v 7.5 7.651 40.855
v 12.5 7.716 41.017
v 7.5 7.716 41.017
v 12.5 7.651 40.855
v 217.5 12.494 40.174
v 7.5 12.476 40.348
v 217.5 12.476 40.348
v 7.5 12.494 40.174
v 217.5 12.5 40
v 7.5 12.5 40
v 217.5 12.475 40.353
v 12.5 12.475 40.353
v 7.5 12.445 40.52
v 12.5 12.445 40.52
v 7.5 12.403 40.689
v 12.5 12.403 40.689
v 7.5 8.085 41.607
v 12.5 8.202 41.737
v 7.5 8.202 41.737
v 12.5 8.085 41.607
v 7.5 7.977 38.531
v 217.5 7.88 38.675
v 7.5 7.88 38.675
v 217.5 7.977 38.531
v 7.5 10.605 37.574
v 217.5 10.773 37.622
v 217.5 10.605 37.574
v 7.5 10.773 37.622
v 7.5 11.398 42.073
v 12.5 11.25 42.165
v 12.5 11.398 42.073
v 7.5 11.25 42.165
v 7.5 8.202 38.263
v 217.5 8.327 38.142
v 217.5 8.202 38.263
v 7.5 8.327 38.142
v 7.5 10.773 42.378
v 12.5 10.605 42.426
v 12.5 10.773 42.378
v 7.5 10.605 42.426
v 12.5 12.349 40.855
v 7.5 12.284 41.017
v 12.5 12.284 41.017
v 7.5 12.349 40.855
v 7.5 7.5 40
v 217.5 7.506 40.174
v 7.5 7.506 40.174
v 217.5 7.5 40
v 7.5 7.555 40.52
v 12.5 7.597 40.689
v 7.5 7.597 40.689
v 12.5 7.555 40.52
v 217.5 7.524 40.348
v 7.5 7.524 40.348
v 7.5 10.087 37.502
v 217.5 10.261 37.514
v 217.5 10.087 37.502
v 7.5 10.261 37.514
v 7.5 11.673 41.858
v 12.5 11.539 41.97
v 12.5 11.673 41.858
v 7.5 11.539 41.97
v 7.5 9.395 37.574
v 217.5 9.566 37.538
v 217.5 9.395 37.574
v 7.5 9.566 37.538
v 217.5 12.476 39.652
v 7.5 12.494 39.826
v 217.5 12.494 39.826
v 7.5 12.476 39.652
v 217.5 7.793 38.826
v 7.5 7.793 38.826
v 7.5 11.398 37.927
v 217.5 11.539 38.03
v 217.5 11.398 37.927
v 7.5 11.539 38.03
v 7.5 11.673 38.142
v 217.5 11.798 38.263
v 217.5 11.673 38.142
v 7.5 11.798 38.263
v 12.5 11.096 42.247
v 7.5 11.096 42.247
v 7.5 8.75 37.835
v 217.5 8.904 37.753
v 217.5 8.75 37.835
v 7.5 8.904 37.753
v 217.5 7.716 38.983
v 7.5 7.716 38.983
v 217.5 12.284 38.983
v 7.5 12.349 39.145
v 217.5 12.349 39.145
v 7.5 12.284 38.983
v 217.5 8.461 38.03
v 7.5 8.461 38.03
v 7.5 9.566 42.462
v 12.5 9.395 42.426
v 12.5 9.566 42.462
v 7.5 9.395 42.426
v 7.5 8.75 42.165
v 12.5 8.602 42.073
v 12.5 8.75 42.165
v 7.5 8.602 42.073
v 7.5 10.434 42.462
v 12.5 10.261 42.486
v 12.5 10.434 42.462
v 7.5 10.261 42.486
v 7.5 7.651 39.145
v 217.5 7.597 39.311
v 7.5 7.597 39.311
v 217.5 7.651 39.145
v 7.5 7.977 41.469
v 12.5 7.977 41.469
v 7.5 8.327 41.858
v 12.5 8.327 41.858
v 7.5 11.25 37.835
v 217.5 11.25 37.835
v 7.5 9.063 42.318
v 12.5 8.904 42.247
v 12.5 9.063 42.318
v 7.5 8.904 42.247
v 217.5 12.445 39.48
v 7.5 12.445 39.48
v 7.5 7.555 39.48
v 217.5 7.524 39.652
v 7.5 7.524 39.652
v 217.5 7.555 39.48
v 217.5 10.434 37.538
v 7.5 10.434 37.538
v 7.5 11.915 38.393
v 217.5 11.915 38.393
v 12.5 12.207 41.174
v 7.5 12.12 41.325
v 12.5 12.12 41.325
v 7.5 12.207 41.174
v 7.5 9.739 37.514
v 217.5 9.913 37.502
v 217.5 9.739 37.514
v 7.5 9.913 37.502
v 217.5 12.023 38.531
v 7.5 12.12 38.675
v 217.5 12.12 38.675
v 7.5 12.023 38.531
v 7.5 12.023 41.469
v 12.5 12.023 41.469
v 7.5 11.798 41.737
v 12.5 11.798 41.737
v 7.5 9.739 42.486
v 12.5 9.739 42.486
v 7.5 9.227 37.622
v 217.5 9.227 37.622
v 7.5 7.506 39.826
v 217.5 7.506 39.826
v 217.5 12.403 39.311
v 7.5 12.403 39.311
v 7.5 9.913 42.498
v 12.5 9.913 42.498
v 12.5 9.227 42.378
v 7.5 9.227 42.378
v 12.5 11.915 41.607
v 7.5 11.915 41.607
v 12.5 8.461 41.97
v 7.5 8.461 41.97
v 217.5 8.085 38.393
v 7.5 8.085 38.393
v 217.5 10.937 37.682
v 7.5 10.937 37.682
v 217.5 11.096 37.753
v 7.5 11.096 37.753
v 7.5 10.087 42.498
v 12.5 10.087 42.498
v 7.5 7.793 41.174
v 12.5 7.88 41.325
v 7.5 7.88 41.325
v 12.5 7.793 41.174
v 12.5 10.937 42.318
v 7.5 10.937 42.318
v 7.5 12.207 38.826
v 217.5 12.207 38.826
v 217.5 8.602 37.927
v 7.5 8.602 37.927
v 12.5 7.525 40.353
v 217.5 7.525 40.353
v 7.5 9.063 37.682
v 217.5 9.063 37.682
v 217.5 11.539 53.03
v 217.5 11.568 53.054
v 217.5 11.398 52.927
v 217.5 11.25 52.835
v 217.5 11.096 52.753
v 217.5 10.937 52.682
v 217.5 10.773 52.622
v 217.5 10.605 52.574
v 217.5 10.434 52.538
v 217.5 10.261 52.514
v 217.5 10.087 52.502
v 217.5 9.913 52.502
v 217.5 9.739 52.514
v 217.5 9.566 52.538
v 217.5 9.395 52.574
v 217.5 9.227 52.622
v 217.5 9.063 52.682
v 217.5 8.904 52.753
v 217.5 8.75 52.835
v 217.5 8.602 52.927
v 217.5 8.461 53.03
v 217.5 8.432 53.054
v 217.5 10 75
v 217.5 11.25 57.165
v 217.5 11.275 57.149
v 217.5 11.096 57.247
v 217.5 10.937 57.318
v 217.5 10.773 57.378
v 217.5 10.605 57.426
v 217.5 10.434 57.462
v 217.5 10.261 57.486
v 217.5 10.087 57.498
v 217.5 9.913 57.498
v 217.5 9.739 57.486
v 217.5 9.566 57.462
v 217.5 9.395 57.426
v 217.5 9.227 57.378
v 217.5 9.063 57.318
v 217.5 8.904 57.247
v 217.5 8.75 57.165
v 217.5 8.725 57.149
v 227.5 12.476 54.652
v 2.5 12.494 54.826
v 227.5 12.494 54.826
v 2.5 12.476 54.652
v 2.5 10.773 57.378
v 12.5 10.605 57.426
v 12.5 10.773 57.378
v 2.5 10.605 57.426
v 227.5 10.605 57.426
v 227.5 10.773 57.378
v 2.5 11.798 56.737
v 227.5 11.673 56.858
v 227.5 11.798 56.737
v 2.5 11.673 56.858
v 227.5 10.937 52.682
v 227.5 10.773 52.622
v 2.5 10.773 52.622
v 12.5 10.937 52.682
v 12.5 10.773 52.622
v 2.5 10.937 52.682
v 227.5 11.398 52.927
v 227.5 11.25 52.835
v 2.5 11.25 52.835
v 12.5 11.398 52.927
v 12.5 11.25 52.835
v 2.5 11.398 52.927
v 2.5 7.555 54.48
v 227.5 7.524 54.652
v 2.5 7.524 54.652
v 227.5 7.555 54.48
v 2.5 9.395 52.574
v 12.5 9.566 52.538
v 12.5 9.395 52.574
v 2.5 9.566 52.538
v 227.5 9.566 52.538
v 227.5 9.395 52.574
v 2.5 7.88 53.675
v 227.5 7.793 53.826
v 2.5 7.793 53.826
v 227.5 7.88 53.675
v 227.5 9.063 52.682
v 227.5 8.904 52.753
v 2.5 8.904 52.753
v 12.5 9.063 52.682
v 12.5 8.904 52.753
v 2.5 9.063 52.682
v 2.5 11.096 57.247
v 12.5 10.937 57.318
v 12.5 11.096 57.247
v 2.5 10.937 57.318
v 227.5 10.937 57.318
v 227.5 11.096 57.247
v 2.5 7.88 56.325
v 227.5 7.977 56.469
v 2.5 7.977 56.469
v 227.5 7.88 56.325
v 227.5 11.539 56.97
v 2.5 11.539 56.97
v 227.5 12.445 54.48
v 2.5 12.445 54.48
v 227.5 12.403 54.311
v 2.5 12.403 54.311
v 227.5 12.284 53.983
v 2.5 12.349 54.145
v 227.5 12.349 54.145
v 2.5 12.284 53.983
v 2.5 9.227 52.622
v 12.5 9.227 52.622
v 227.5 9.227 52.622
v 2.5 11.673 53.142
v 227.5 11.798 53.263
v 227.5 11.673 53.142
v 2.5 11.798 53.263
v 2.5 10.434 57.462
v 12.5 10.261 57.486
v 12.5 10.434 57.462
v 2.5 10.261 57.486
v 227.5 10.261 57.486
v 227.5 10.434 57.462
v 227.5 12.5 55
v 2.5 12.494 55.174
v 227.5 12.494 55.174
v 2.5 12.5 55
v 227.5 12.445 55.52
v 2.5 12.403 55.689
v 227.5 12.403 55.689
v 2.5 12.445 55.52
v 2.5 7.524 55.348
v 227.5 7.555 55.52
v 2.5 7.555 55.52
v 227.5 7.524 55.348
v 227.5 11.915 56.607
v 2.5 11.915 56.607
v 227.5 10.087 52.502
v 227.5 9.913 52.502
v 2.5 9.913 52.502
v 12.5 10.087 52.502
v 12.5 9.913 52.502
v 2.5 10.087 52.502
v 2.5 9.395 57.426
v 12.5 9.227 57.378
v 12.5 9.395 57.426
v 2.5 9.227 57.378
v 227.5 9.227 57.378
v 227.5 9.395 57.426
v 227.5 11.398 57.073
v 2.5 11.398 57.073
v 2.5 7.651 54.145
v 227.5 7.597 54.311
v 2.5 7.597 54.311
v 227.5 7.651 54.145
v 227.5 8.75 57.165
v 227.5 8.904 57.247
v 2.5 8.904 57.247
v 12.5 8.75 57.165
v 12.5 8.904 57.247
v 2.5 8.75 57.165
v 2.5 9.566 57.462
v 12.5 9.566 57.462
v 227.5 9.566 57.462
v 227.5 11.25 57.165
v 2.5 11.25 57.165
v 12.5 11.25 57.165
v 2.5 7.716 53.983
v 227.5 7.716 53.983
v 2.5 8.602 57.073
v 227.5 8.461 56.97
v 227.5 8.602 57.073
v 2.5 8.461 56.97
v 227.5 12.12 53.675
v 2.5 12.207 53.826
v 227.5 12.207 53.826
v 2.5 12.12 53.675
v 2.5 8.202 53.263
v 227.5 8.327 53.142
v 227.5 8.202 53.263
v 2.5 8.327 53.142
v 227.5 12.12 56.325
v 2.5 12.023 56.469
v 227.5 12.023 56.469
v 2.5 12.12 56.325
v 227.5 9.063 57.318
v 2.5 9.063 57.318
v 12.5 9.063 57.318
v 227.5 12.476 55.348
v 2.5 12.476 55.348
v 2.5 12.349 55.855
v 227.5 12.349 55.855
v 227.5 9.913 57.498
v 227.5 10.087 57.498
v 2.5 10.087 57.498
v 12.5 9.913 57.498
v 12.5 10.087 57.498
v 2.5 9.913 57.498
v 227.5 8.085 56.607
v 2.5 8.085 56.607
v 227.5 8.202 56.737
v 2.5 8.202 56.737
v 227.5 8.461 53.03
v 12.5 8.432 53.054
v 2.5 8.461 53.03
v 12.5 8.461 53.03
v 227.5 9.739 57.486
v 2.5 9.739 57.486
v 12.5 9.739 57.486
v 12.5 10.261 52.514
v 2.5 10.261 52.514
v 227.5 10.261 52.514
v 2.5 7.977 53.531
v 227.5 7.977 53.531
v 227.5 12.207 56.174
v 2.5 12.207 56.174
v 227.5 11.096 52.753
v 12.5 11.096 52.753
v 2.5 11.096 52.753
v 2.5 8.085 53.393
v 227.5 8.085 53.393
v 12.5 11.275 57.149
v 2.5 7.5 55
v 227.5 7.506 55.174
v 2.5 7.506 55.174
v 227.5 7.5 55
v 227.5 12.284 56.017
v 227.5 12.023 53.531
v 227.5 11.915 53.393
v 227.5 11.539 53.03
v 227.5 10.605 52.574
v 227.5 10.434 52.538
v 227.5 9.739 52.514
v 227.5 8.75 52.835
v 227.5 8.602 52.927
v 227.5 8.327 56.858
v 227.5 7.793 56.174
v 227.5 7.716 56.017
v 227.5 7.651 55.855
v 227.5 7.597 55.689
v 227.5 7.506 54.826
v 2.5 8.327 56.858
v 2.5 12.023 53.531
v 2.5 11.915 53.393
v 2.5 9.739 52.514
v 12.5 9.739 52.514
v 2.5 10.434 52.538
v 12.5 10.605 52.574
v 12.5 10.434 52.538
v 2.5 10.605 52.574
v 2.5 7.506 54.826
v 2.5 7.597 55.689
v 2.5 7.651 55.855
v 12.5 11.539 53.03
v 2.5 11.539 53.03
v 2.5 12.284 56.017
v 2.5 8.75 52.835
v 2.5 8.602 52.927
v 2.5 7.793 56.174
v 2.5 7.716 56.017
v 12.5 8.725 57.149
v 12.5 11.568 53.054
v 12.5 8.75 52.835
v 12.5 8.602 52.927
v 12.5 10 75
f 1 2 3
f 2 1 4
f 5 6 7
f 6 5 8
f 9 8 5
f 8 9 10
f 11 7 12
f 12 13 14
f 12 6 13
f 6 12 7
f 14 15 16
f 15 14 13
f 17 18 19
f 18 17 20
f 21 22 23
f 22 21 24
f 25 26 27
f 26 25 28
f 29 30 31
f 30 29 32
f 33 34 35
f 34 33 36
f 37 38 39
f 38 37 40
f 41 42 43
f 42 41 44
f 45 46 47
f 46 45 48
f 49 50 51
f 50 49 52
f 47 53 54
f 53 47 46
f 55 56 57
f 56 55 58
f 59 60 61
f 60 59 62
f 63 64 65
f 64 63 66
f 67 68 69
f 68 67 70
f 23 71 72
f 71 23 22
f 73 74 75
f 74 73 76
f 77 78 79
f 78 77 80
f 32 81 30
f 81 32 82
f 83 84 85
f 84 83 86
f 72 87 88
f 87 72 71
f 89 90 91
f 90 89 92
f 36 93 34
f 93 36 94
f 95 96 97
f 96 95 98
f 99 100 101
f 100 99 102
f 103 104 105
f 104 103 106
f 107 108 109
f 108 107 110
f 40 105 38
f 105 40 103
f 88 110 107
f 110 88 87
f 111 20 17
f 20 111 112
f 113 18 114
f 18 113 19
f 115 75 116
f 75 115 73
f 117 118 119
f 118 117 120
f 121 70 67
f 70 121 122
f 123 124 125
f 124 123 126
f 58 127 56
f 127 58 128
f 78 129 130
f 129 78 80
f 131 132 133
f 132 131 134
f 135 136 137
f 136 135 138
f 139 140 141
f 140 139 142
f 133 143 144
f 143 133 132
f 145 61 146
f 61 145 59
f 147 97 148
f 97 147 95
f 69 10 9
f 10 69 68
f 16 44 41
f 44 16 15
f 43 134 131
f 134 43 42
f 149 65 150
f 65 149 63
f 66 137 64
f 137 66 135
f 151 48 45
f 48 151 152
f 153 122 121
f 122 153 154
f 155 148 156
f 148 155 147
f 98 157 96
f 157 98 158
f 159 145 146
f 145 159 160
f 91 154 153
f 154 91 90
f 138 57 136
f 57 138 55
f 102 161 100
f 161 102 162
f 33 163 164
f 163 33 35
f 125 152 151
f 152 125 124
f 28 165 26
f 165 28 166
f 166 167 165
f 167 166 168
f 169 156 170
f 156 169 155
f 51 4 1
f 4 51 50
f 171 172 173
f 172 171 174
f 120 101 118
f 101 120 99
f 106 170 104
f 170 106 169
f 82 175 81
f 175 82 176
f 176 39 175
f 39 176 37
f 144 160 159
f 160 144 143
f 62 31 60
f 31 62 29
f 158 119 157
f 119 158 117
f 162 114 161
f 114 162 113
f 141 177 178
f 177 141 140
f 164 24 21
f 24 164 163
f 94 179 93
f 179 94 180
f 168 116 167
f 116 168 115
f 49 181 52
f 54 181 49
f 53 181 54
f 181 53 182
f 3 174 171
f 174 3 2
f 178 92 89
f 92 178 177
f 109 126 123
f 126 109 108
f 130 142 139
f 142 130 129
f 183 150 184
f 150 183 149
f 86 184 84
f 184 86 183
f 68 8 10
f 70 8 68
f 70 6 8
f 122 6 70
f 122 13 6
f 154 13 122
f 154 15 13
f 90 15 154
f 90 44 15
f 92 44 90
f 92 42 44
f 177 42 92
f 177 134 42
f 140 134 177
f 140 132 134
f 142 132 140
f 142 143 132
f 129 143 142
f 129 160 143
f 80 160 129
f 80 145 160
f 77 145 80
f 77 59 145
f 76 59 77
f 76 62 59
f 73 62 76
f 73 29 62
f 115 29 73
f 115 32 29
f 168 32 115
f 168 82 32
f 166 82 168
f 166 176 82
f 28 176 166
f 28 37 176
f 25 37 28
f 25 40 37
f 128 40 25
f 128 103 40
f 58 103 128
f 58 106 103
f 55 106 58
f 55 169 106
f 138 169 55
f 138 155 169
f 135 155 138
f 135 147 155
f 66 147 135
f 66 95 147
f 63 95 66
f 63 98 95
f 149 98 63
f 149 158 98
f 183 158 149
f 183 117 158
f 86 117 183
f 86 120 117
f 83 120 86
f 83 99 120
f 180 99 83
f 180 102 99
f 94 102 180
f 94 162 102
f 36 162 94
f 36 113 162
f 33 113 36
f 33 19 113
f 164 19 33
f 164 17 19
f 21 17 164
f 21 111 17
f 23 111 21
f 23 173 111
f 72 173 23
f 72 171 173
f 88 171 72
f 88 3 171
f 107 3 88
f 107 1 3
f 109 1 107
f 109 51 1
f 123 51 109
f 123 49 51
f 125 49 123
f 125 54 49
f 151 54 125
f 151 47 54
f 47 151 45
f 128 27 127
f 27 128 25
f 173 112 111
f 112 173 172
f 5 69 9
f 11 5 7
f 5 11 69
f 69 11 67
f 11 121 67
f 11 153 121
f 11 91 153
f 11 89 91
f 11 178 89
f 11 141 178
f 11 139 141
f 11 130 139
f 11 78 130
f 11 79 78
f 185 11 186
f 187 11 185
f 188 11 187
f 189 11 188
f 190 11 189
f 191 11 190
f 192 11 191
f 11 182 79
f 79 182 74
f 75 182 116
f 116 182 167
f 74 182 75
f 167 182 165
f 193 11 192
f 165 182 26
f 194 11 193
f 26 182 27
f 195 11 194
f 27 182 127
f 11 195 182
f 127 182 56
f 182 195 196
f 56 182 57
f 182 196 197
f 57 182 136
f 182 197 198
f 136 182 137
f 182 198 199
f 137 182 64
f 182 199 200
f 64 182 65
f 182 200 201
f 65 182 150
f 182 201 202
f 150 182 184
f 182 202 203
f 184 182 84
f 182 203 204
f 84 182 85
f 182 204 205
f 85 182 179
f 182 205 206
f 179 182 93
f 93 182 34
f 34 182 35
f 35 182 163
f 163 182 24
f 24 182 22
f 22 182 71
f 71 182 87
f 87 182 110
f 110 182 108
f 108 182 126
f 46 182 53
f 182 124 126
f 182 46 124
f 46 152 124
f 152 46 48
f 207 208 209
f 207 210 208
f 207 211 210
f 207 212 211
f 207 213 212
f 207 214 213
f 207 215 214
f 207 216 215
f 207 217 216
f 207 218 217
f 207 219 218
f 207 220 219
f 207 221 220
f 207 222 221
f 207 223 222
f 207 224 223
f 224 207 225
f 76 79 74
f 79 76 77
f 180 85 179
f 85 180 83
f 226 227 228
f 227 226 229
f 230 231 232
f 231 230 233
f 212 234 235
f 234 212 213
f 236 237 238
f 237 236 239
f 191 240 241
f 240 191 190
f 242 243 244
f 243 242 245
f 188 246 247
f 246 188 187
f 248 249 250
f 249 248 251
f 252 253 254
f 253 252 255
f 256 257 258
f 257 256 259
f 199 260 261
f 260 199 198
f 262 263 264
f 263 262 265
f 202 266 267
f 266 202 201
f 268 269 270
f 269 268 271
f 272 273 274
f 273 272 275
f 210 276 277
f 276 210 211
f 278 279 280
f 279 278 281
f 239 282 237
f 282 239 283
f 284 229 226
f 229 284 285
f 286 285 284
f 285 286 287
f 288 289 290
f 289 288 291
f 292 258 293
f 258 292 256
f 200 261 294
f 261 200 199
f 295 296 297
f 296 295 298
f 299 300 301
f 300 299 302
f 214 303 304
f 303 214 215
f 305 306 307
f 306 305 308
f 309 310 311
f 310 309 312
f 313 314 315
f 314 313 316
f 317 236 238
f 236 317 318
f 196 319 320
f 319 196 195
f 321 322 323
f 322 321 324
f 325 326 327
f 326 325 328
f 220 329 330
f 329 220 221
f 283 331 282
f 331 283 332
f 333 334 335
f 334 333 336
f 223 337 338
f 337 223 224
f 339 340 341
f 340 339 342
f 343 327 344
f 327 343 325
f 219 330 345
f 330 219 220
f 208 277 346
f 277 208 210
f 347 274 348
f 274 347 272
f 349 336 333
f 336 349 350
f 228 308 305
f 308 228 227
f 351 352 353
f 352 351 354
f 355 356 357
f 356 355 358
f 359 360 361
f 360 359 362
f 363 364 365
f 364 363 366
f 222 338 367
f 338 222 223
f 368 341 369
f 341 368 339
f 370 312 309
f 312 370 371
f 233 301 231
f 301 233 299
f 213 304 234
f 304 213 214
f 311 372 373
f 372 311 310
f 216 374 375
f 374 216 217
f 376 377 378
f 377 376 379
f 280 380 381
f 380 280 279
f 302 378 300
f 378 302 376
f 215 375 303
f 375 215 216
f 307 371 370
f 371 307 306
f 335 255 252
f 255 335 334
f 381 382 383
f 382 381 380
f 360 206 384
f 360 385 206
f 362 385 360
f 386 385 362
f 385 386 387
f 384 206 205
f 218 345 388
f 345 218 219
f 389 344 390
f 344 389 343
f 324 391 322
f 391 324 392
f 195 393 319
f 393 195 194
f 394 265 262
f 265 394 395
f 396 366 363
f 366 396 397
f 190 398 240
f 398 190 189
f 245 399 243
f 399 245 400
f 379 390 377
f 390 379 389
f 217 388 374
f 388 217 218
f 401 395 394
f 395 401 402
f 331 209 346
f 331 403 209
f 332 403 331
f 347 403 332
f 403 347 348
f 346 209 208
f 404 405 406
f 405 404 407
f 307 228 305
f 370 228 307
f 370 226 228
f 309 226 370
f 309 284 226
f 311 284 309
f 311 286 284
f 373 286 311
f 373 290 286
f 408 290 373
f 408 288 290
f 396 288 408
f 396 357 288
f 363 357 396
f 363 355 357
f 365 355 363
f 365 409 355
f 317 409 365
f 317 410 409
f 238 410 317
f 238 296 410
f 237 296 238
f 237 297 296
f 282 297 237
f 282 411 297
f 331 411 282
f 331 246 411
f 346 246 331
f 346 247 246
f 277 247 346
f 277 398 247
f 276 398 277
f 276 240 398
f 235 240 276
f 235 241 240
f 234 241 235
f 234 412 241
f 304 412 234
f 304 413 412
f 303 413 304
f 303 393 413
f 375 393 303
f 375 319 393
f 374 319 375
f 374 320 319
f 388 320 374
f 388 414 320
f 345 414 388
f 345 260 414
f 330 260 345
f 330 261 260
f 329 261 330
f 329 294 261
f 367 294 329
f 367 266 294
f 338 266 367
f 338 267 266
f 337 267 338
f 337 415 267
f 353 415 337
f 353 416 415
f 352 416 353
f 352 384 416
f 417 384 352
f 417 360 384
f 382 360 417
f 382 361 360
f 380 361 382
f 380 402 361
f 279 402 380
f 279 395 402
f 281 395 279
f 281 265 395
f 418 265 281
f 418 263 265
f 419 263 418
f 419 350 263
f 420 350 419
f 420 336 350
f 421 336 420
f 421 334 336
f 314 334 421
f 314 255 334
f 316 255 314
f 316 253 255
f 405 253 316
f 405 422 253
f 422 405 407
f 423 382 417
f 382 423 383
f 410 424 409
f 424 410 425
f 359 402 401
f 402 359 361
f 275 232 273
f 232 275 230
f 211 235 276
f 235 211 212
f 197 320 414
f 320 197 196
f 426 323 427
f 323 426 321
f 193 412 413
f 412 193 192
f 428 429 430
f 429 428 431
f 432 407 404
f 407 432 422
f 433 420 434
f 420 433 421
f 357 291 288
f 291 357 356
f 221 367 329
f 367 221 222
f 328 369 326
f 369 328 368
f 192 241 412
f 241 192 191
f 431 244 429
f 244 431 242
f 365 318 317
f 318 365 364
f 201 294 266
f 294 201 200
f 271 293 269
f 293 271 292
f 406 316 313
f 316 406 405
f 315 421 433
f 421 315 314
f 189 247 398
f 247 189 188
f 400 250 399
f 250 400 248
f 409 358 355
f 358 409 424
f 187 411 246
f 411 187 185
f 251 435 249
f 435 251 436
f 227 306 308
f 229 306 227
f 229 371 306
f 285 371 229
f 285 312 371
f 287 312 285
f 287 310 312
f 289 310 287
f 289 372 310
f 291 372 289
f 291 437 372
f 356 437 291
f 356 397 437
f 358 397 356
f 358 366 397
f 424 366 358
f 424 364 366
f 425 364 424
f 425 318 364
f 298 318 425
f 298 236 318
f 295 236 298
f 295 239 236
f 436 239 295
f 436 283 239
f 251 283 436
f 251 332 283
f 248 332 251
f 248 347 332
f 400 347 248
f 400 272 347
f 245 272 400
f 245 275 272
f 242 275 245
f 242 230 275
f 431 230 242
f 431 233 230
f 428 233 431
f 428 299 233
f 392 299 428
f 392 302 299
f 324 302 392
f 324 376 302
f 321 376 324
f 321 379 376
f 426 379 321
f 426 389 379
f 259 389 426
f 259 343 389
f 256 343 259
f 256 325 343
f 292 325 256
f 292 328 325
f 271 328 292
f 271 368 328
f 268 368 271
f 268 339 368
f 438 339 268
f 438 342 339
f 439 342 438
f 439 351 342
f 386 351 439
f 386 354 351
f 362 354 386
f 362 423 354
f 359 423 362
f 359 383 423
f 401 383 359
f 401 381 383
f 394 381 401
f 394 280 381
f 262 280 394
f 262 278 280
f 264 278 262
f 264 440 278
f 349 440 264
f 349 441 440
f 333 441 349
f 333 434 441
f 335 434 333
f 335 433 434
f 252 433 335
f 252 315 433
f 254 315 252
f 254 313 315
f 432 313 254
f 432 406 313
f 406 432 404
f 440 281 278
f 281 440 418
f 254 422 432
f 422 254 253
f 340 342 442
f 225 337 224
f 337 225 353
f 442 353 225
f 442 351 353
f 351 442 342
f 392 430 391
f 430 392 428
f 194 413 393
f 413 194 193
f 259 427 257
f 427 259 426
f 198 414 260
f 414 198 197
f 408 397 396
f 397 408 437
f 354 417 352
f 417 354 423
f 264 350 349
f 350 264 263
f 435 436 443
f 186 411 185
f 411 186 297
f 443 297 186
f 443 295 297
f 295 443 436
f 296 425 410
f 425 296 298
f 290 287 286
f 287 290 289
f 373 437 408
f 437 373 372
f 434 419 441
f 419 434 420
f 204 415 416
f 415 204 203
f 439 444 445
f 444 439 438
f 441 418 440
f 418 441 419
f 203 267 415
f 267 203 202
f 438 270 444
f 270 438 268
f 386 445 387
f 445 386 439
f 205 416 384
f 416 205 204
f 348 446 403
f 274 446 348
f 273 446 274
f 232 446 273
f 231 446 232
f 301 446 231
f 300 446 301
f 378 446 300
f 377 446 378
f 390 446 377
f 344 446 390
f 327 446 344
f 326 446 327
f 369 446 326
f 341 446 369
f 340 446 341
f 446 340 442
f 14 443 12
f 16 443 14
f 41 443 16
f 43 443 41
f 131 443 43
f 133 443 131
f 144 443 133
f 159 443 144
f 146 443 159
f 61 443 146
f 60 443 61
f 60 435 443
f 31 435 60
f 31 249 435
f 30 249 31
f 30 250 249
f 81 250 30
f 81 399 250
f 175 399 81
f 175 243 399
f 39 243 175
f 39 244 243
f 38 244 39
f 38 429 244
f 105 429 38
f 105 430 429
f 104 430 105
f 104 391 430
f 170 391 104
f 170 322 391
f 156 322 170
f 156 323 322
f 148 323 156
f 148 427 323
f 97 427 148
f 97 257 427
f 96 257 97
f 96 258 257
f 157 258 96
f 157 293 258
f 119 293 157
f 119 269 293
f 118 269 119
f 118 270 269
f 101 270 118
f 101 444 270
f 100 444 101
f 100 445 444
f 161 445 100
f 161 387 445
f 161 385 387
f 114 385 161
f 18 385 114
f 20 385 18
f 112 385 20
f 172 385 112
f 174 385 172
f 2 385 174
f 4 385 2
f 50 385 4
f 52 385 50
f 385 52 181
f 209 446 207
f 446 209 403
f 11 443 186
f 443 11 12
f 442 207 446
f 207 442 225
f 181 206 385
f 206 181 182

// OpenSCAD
$fn = 90;
module louver(filter_x, x_offset, cylinder_radius, distance_between_cylinders) {
  rotate([90,0,0]) {
    rotate([0, 90, 0]) {

      // cylinder that is meant to be attached to the direction synchronizer
      translate([0, 0, x_offset]) {
        cylinder(h=filter_x - x_offset, r=cylinder_radius);
      }

      translate([0, distance_between_cylinders, 0]) {
        cylinder(h=filter_x + x_offset * 2, r=cylinder_radius);
      }

      // triangle
      translate([0, 0, x_offset * 2]) {
        rotate([0,0,90])
          linear_extrude(height=filter_x - 2 * x_offset) polygon(points=[[0,-2.5],[20 + distance_between_cylinders,0],[0, 2.5]]);
      }
    }
  }
}

depth = 5;
filter_x = 110;
top_z = 60;

translate([depth / 2, 2 * depth, top_z - depth * 4]) {
   louver(filter_x=(110) * 2 - depth, x_offset=depth, cylinder_radius=2.5, distance_between_cylinders=15);
}
